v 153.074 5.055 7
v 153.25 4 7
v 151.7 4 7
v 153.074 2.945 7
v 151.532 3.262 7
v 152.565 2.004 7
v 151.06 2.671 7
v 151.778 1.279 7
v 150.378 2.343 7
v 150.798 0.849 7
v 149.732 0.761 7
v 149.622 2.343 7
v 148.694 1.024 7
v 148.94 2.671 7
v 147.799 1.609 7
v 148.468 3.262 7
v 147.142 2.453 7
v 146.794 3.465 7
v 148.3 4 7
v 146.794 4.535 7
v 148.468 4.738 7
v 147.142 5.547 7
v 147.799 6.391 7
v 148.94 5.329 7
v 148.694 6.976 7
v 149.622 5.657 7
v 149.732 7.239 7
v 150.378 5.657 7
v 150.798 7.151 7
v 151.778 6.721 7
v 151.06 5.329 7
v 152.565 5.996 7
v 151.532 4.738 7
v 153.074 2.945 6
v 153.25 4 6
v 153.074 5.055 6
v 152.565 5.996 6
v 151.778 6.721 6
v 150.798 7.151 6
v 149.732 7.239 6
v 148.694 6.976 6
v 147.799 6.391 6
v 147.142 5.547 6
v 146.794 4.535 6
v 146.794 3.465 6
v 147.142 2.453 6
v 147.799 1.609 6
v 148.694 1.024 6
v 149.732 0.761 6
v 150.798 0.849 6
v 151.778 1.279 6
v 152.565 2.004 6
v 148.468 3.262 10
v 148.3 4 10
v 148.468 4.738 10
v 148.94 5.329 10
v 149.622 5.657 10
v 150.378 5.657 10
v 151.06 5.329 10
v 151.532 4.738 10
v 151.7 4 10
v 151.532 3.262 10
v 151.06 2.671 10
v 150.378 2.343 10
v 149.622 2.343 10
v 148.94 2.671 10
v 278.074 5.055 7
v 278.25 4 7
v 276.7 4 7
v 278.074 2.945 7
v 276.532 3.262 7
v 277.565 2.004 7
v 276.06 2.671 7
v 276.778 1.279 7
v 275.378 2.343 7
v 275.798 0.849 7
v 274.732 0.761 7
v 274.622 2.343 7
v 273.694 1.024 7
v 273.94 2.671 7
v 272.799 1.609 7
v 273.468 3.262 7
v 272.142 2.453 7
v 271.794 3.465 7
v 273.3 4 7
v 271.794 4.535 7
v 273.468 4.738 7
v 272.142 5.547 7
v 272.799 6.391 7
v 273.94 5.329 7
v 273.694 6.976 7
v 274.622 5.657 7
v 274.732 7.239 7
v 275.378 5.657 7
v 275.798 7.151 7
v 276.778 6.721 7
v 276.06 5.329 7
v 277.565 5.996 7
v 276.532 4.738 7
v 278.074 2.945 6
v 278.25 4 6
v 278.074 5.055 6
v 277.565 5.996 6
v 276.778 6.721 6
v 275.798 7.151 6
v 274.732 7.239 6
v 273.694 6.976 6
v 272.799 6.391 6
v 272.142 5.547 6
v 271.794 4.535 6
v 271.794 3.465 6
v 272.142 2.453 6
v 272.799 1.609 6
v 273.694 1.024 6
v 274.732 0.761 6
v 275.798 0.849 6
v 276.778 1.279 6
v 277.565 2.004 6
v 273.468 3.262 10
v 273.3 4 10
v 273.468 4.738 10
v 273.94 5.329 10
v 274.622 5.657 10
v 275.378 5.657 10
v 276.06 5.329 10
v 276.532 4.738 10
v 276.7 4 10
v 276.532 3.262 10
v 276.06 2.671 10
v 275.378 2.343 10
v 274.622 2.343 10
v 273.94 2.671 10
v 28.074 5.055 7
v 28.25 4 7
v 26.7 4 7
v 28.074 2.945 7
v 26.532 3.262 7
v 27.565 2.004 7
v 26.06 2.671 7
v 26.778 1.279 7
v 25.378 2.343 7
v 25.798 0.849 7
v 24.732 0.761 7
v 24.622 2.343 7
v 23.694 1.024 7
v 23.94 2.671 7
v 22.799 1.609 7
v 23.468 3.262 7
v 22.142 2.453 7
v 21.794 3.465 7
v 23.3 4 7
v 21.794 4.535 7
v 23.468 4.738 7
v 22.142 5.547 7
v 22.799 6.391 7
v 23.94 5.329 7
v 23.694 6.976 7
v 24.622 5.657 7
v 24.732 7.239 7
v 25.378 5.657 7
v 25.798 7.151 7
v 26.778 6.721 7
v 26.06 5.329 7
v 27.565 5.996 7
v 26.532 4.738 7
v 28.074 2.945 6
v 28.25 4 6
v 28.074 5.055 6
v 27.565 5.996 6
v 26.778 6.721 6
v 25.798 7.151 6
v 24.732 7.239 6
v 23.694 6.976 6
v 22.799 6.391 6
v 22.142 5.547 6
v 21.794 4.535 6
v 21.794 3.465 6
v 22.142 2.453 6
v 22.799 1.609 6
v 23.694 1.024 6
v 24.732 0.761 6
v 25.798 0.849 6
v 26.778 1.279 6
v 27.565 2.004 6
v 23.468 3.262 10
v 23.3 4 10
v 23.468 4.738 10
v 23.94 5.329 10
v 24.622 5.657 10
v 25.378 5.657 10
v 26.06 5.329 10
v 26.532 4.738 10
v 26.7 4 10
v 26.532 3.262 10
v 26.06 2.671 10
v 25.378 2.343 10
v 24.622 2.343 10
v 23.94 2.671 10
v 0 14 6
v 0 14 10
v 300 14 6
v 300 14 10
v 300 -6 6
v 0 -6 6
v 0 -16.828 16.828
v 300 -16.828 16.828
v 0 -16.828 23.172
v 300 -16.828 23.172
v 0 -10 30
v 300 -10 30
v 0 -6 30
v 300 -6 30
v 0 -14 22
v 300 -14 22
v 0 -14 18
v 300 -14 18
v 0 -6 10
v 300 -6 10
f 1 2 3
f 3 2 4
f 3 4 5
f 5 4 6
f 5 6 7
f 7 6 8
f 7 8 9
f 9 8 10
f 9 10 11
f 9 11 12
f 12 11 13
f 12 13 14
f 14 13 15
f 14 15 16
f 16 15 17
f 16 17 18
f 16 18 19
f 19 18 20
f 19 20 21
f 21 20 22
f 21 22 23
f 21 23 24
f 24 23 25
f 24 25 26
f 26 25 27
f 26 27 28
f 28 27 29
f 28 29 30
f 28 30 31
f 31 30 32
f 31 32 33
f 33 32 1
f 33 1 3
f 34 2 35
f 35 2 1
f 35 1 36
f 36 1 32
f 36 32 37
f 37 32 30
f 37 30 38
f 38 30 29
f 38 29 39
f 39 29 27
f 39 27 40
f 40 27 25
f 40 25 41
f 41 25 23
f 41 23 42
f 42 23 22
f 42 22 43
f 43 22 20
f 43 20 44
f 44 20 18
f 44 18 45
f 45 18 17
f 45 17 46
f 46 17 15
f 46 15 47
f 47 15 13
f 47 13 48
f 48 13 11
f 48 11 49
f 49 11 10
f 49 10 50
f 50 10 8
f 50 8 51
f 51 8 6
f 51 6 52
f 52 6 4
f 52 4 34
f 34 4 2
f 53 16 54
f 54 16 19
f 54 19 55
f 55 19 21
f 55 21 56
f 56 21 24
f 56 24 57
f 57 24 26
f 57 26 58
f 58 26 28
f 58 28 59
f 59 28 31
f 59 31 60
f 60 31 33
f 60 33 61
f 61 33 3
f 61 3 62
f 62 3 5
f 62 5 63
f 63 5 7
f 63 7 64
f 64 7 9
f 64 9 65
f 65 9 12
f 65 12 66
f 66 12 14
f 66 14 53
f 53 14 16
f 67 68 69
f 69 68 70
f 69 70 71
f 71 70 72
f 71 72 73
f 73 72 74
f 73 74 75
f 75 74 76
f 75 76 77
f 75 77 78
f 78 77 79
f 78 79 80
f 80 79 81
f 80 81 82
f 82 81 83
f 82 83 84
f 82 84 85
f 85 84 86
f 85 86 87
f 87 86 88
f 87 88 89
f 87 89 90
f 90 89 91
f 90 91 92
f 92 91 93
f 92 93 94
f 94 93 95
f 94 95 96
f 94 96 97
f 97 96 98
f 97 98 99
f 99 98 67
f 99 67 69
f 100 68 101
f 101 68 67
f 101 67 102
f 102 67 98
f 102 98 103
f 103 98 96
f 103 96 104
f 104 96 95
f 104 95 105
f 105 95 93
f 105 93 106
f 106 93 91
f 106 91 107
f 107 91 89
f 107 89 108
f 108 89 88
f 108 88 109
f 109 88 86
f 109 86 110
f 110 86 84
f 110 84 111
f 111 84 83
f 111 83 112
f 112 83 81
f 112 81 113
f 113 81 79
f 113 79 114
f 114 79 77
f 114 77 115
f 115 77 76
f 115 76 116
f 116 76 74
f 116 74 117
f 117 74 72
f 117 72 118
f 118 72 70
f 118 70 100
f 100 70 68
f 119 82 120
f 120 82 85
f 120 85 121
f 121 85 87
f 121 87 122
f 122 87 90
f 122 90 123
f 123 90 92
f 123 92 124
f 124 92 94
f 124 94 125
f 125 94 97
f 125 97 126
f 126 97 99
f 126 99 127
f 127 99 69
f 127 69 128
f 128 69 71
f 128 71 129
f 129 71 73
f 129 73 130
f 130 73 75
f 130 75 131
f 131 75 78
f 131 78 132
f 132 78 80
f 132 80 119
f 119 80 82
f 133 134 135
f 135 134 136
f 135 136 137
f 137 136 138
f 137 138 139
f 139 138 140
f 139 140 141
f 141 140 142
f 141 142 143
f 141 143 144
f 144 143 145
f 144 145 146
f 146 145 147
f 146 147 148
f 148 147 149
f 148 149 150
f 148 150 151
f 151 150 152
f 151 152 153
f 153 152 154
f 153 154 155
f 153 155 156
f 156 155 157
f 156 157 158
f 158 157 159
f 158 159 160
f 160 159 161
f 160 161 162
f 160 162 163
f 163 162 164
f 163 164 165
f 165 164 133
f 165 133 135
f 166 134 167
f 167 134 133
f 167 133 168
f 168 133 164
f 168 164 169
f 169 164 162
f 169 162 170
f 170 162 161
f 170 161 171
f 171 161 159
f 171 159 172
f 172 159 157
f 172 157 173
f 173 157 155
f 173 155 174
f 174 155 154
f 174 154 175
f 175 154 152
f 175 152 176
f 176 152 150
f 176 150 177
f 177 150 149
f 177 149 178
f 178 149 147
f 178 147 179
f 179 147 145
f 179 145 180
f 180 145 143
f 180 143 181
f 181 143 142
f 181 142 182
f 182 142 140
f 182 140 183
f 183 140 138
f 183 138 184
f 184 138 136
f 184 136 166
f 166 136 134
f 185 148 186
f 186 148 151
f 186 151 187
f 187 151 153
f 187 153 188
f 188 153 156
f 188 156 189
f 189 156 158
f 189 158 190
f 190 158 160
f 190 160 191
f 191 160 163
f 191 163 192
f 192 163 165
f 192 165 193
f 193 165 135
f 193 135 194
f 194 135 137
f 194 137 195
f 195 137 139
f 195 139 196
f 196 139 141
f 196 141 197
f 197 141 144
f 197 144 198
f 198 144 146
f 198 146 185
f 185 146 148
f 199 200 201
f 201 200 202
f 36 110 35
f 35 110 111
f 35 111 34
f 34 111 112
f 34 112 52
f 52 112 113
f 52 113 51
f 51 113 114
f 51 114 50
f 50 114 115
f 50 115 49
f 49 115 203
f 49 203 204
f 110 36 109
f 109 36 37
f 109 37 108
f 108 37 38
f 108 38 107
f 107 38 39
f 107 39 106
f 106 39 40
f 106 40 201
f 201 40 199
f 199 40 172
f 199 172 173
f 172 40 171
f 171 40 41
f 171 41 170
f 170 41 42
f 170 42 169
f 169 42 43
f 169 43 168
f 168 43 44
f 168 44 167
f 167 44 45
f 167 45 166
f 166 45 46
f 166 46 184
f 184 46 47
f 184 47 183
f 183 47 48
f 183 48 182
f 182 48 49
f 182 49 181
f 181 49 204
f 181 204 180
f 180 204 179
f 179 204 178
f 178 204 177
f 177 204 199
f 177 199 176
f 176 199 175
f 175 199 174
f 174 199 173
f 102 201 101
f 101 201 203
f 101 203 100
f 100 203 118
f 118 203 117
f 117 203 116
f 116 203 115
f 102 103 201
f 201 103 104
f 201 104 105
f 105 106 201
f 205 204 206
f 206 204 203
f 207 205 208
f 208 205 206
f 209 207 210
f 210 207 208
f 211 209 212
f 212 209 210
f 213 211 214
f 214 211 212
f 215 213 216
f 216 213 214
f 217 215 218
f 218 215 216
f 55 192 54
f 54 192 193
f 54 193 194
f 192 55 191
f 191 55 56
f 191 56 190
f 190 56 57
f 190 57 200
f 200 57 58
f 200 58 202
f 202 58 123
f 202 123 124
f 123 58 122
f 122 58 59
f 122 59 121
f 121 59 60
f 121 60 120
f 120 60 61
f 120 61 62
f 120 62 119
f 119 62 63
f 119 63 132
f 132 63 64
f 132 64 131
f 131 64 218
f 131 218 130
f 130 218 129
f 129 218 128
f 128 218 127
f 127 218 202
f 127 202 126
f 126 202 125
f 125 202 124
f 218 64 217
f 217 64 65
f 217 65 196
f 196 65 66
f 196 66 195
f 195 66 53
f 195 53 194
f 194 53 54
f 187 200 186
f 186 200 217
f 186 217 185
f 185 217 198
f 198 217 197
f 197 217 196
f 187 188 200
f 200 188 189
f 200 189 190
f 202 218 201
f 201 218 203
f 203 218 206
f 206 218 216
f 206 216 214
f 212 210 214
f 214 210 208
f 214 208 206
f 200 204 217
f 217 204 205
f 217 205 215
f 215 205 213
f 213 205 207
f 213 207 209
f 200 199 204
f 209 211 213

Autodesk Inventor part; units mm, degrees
ref_plane "YZ Plane" through (0, 0, 0) normal (1, 0, 0) x (0, 1, 0)
ref_plane "XZ Plane" through (0, 0, 0) normal (0, 1, 0) x (-1, 0, 0)
ref_plane "XY Plane" through (0, 0, 0) normal (0, 0, 1) x (1, 0, 0)
sketch "Sketch1" plane through (0, 0, 0) normal (1, 0, 0) x (0, 1, 0)
  line L0 (0, 0) -> (4, 0)
  line L1 (4, 0) -> (4, 20)
  line L2 (4, 20) -> (0, 20) construction
  line L3 (0, 20) -> (0, 0)
  line L4 (4, 20) -> (12, 28)
  line L5 (12, 28) -> (16, 28)
  line L6 (16, 28) -> (24, 20)
  line L7 (24, 20) -> (24, 24)
  line L8 (24, 24) -> (17.1716, 30.8284)
  line L9 (17.1716, 30.8284) -> (10.8284, 30.8284)
  line L10 (10.8284, 30.8284) -> (0, 20)
  line L11 (24, 20) -> (4, 20) construction
  line L12 (14, 30.8284) -> (14, 28) construction
  dimension "d0" = 20
  dimension "d1" = 4
  dimension "d8" = 135
  dimension "d11" = 20
  dimension "d12" = 8
  dimension "d13" = 2.8284
  dimension "d14" = 2.8284
extrude "Extrusion1" add sketch "Sketch1" along normal blind 300
sketch "Sketch2" plane through (0, 0, 0) normal (0, -1, 0) x (1, 0, 0)
  line L0 (300, 0) -> (300, 20) projected
  line L1 (300, 10) -> (275, 10)
  line L2 (275, 10) -> (150, 10)
  line L3 (150, 10) -> (25, 10)
  line L4 (25, 10) -> (0, 10)
  line L5 (0, 0) -> (300, 0) projected
  line L6 (0, 20) -> (0, 0) projected
  dimension "d15" = 10
  dimension "d16" = 25
hole "Hole1" at (275, 0, 10) at (150, 0, 10) at (25, 0, 10) direction (0, 1, 0) diameter 3.4 end through all counterbore diameter 6.5 counterbore depth 1 clearance for "Socket Head Cap Screw" size "M3" standard "Ansi Metric M Profile"
move or copy body "Rotate1" bodies to move or copy 1 copy no rotation origin (0, 0, 0) rotation axis (1, 0, 0) rotation angle 90 translate (0, 14, 6)
equation "\"d13\" = d14"
properties part number "Rear_Rail_Wire_Cover"
